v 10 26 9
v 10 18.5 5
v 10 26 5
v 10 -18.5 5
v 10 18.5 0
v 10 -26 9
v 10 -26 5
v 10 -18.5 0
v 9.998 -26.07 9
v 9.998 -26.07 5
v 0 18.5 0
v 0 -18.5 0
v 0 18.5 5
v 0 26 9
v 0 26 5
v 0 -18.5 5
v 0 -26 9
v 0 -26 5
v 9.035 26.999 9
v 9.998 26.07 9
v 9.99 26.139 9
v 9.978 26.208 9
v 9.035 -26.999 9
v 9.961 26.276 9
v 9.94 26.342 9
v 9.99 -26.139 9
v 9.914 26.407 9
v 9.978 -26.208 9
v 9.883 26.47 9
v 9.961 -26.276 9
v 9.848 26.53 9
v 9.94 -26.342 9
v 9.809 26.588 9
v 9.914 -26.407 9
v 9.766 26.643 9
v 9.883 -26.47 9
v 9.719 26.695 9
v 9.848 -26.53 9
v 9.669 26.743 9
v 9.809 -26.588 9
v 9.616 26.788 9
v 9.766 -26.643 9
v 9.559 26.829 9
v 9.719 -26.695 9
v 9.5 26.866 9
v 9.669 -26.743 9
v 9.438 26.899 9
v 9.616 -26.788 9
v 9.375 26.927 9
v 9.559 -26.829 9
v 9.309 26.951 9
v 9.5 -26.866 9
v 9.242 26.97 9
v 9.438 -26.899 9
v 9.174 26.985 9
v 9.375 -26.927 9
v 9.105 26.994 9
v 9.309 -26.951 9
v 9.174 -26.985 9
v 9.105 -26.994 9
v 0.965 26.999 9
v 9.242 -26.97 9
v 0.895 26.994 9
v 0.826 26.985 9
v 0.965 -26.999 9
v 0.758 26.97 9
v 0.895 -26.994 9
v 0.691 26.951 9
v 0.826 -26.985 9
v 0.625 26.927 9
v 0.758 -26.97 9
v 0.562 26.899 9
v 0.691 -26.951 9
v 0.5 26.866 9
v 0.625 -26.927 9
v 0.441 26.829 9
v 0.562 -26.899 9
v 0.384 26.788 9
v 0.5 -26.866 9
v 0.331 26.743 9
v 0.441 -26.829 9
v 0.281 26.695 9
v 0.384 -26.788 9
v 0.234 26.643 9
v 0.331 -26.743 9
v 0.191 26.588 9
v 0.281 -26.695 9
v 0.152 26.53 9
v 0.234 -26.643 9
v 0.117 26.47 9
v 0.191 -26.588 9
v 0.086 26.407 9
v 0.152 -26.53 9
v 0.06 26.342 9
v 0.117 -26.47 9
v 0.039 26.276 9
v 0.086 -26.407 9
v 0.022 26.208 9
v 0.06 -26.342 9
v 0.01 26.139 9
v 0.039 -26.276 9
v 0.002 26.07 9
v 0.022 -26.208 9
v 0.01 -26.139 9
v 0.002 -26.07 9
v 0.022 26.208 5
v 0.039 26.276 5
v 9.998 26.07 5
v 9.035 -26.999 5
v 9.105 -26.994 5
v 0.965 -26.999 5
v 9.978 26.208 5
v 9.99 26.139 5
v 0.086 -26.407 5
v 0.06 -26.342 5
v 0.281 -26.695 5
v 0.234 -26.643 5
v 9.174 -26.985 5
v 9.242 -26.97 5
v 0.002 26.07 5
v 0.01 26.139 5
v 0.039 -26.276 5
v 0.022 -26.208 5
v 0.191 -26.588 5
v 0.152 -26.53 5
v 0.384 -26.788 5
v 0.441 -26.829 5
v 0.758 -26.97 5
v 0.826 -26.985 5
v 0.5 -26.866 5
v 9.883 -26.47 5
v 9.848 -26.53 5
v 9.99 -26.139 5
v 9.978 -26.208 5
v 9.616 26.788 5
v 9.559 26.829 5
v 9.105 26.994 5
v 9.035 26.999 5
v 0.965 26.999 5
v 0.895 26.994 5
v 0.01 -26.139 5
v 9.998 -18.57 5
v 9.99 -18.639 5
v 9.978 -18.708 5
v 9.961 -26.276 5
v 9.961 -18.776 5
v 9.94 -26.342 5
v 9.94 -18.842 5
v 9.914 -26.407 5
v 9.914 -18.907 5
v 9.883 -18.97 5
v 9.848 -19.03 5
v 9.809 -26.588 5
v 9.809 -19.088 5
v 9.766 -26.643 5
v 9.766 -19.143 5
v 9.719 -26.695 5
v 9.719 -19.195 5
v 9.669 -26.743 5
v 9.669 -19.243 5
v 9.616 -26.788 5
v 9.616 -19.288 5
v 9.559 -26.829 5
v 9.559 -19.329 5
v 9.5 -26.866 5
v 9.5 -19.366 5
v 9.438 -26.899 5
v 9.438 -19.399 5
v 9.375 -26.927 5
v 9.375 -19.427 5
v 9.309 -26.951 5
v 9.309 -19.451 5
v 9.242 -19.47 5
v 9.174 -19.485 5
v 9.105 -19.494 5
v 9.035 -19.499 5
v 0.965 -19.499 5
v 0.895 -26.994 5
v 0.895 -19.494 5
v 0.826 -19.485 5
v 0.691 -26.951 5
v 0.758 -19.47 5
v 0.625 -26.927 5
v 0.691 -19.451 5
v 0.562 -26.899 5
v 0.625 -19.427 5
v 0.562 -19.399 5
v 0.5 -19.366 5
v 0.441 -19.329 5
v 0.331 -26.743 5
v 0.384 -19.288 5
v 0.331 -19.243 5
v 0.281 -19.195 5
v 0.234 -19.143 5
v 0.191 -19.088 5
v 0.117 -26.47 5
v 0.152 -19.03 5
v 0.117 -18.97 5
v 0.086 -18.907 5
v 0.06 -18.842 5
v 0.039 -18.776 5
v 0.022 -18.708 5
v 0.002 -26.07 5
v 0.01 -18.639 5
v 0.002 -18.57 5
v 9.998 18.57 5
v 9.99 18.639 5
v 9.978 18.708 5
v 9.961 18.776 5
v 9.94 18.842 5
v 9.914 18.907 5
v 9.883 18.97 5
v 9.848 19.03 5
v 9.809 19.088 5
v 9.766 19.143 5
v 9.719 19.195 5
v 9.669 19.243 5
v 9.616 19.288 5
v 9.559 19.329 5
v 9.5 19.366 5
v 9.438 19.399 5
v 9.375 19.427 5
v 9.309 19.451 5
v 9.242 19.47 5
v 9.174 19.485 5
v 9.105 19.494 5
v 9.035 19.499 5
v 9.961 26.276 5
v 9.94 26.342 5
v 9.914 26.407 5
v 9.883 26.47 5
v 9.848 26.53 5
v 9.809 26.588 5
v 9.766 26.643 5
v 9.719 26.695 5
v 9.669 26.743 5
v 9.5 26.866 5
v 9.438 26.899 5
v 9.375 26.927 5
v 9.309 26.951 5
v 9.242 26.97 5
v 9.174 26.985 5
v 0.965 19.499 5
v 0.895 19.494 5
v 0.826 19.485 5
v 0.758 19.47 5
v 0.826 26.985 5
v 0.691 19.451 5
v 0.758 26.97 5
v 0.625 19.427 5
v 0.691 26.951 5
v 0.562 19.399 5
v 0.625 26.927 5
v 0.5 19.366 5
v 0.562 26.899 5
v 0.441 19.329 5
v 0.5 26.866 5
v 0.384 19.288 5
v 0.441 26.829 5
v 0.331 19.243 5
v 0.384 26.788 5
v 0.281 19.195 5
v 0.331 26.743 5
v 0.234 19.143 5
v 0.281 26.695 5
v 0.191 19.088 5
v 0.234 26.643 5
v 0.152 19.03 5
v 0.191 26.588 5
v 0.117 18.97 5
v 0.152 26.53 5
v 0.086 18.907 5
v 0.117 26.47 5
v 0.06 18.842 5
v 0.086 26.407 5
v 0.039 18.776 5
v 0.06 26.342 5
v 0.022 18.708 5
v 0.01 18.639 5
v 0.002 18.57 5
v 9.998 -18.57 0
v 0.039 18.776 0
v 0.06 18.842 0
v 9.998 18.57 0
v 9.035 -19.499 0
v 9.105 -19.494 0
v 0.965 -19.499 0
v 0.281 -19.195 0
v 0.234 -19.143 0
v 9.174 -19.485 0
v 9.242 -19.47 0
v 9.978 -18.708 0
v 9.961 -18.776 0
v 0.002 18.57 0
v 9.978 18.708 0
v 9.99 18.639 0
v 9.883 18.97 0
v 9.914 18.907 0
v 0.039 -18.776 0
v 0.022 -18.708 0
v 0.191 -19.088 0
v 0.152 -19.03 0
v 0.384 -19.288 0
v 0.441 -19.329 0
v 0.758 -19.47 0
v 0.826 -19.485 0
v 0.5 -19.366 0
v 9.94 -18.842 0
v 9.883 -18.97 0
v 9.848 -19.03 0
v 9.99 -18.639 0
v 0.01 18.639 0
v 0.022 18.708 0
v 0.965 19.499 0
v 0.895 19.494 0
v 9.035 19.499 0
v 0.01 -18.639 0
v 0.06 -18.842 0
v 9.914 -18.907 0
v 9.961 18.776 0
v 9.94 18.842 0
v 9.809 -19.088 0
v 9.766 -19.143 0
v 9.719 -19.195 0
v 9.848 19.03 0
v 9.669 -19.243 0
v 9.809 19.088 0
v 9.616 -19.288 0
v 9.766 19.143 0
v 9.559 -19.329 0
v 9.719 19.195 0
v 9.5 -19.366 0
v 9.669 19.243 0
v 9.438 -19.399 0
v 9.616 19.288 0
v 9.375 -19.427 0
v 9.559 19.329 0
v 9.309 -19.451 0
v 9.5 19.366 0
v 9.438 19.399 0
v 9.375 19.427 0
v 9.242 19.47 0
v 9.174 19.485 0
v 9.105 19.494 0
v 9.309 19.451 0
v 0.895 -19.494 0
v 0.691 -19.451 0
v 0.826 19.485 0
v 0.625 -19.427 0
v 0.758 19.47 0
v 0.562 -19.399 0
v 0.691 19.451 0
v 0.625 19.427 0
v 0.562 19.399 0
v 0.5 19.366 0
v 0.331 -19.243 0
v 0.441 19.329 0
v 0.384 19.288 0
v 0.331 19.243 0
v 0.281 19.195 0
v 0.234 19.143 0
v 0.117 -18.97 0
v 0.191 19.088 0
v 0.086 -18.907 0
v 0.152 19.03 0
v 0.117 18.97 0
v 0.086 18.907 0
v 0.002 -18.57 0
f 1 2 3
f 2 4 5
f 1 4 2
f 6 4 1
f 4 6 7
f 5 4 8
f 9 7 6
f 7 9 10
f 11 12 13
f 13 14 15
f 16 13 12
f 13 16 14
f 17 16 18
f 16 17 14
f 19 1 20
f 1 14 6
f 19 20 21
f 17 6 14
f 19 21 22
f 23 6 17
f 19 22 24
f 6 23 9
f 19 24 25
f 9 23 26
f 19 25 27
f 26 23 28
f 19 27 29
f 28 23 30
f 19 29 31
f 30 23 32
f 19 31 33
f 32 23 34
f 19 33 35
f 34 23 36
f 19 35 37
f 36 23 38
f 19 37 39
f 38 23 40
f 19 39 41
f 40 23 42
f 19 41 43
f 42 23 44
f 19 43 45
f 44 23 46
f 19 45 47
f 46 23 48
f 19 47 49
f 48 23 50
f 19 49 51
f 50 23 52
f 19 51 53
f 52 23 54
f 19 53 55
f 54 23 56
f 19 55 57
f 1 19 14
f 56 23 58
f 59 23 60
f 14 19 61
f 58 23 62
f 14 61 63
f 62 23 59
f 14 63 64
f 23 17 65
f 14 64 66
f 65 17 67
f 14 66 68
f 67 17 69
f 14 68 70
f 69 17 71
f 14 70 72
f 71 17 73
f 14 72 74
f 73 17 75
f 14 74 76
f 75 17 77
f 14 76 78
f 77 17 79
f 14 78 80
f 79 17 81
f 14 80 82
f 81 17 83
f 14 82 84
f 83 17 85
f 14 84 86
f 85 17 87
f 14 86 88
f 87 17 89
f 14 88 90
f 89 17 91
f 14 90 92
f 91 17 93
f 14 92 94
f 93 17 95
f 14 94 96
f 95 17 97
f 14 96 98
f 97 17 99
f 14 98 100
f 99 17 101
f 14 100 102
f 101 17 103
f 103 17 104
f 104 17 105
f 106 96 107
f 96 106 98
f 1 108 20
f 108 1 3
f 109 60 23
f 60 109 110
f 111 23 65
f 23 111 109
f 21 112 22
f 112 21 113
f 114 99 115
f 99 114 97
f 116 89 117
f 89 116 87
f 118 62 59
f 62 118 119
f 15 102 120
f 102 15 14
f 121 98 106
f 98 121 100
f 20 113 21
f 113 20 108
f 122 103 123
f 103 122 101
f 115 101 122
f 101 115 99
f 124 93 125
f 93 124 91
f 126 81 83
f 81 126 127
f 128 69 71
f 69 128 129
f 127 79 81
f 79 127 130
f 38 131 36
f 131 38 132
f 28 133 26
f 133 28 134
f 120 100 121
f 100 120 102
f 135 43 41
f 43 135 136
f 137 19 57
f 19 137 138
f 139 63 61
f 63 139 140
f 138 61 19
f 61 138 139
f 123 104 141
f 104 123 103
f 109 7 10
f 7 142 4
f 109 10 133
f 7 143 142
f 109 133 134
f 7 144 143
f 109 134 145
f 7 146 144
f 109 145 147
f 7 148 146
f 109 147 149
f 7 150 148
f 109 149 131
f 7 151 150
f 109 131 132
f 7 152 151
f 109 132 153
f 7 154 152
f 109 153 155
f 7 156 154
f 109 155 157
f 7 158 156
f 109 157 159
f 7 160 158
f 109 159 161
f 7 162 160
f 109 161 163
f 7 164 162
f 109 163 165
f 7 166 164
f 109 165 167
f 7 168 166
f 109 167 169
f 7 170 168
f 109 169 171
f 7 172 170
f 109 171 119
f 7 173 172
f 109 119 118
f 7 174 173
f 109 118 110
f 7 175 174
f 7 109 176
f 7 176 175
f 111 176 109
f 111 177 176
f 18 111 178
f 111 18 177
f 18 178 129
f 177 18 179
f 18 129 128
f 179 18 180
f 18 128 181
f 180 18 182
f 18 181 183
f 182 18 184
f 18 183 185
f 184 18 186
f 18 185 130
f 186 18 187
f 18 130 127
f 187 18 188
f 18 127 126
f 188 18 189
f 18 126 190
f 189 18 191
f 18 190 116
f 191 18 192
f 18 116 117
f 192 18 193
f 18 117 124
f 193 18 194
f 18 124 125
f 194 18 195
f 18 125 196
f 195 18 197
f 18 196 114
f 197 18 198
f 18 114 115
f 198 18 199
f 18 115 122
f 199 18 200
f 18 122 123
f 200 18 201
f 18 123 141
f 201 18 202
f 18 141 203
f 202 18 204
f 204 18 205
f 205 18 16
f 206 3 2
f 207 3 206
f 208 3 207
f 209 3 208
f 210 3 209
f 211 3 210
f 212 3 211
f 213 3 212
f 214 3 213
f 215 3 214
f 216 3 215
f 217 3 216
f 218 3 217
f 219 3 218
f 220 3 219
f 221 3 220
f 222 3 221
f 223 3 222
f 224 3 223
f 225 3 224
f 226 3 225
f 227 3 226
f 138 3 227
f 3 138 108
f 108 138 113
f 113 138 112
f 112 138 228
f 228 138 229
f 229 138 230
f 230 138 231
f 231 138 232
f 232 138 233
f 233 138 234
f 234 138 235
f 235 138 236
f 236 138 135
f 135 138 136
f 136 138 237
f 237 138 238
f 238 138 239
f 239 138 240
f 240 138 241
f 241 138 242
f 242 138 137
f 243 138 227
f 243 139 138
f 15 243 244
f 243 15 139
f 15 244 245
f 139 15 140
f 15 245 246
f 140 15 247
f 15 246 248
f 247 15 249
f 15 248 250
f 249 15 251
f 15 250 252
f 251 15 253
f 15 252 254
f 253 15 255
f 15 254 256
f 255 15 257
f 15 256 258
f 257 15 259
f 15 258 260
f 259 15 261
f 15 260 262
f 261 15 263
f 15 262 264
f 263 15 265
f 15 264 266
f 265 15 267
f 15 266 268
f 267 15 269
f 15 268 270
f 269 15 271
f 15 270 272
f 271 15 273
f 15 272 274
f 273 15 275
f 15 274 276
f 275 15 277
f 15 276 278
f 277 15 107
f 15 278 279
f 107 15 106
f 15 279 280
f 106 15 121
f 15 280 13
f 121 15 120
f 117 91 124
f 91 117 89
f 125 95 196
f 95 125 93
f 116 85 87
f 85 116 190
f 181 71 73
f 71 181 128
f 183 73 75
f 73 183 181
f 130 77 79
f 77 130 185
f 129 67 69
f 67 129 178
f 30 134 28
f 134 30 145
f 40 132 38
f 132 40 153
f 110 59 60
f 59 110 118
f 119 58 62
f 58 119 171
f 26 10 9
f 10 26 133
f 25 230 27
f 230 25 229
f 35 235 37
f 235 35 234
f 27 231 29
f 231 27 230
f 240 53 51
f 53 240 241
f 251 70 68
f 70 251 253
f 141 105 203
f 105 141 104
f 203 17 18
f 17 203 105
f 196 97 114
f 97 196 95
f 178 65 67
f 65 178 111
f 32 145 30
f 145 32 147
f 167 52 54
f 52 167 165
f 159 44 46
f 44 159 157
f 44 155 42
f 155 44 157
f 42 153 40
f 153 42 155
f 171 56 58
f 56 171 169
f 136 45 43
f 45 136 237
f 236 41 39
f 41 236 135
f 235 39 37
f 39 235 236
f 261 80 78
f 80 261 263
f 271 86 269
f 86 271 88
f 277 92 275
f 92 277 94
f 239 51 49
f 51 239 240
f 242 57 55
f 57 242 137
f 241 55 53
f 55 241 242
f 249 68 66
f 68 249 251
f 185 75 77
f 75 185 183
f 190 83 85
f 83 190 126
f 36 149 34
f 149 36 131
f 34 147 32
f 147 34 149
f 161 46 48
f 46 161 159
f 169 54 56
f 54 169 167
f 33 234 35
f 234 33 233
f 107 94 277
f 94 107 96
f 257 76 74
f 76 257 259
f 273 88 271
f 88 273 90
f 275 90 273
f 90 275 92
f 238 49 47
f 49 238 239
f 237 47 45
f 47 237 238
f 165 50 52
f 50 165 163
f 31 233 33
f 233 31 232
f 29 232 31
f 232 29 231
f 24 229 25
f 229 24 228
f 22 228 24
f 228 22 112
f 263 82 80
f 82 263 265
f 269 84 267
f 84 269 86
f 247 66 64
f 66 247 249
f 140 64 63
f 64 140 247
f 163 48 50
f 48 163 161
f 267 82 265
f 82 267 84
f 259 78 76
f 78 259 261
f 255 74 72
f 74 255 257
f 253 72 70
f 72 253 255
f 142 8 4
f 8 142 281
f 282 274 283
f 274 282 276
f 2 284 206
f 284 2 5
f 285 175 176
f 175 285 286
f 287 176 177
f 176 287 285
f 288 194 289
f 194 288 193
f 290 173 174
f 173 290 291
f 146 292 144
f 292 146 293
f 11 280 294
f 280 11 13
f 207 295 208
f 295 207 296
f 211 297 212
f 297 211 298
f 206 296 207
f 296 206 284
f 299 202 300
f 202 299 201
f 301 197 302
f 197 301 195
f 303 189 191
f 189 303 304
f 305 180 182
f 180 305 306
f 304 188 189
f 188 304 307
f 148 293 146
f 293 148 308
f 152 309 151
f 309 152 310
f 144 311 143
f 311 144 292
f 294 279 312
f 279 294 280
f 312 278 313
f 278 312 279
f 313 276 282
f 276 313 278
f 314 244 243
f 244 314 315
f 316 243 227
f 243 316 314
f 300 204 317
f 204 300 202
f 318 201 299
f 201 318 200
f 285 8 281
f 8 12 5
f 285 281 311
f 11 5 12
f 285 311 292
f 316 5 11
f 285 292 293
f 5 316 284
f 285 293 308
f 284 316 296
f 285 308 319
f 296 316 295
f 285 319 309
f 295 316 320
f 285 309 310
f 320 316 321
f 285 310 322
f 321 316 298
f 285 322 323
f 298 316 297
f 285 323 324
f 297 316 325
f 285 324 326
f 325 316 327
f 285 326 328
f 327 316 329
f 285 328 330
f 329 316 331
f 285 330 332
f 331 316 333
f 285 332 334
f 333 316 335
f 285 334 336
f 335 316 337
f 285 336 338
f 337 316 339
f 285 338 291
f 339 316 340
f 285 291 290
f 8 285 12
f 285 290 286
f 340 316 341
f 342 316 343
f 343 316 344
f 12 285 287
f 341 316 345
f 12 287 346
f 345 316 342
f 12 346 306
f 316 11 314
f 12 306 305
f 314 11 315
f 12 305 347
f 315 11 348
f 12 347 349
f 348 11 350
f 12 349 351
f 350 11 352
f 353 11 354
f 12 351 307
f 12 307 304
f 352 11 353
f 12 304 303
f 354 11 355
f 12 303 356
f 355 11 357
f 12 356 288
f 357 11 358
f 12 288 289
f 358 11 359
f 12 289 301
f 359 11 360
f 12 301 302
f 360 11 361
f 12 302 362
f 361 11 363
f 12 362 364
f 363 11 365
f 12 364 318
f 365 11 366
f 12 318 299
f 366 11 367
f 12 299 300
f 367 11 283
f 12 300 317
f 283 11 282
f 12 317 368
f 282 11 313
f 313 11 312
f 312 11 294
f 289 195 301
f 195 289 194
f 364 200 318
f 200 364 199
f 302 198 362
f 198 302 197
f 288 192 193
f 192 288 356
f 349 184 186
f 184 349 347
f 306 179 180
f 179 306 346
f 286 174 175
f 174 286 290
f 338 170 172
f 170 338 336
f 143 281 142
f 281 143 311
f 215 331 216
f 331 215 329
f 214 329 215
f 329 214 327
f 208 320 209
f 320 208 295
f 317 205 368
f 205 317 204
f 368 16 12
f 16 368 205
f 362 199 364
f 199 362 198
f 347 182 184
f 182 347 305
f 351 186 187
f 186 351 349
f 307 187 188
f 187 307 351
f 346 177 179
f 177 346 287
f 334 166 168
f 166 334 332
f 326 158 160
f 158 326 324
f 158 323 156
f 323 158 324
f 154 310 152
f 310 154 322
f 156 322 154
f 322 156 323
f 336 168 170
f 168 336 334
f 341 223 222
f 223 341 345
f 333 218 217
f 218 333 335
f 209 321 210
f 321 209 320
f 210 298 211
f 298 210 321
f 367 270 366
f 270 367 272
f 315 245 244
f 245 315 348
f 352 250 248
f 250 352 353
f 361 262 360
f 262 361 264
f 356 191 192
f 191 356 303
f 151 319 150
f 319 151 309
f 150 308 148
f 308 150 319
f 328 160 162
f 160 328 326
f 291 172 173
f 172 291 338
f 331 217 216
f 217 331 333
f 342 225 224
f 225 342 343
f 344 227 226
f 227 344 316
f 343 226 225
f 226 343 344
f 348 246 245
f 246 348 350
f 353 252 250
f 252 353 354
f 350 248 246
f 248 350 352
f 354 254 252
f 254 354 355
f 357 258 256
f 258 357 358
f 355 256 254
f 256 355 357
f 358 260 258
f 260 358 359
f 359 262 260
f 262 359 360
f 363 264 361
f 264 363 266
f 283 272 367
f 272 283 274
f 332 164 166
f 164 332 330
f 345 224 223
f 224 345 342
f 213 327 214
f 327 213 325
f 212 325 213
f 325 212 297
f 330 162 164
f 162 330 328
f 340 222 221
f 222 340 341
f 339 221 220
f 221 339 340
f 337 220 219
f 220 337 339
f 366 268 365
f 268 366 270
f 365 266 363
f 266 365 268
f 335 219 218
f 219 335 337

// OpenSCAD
$fn=90;

module top() {
     translate([1,-26,5]) {
         minkowski() {
            cube([8, 52, 3], center=false);
            cylinder(1);
         }
     }      
}

module bottom() {
     translate([1,-18.5,0]) {
         minkowski() {
            cube([8, 37, 5], center=false);
            cylinder(1);
         }
     }      
}

module bracket() {
    union() {
        top();
        bottom();
    }
}

bracket();
